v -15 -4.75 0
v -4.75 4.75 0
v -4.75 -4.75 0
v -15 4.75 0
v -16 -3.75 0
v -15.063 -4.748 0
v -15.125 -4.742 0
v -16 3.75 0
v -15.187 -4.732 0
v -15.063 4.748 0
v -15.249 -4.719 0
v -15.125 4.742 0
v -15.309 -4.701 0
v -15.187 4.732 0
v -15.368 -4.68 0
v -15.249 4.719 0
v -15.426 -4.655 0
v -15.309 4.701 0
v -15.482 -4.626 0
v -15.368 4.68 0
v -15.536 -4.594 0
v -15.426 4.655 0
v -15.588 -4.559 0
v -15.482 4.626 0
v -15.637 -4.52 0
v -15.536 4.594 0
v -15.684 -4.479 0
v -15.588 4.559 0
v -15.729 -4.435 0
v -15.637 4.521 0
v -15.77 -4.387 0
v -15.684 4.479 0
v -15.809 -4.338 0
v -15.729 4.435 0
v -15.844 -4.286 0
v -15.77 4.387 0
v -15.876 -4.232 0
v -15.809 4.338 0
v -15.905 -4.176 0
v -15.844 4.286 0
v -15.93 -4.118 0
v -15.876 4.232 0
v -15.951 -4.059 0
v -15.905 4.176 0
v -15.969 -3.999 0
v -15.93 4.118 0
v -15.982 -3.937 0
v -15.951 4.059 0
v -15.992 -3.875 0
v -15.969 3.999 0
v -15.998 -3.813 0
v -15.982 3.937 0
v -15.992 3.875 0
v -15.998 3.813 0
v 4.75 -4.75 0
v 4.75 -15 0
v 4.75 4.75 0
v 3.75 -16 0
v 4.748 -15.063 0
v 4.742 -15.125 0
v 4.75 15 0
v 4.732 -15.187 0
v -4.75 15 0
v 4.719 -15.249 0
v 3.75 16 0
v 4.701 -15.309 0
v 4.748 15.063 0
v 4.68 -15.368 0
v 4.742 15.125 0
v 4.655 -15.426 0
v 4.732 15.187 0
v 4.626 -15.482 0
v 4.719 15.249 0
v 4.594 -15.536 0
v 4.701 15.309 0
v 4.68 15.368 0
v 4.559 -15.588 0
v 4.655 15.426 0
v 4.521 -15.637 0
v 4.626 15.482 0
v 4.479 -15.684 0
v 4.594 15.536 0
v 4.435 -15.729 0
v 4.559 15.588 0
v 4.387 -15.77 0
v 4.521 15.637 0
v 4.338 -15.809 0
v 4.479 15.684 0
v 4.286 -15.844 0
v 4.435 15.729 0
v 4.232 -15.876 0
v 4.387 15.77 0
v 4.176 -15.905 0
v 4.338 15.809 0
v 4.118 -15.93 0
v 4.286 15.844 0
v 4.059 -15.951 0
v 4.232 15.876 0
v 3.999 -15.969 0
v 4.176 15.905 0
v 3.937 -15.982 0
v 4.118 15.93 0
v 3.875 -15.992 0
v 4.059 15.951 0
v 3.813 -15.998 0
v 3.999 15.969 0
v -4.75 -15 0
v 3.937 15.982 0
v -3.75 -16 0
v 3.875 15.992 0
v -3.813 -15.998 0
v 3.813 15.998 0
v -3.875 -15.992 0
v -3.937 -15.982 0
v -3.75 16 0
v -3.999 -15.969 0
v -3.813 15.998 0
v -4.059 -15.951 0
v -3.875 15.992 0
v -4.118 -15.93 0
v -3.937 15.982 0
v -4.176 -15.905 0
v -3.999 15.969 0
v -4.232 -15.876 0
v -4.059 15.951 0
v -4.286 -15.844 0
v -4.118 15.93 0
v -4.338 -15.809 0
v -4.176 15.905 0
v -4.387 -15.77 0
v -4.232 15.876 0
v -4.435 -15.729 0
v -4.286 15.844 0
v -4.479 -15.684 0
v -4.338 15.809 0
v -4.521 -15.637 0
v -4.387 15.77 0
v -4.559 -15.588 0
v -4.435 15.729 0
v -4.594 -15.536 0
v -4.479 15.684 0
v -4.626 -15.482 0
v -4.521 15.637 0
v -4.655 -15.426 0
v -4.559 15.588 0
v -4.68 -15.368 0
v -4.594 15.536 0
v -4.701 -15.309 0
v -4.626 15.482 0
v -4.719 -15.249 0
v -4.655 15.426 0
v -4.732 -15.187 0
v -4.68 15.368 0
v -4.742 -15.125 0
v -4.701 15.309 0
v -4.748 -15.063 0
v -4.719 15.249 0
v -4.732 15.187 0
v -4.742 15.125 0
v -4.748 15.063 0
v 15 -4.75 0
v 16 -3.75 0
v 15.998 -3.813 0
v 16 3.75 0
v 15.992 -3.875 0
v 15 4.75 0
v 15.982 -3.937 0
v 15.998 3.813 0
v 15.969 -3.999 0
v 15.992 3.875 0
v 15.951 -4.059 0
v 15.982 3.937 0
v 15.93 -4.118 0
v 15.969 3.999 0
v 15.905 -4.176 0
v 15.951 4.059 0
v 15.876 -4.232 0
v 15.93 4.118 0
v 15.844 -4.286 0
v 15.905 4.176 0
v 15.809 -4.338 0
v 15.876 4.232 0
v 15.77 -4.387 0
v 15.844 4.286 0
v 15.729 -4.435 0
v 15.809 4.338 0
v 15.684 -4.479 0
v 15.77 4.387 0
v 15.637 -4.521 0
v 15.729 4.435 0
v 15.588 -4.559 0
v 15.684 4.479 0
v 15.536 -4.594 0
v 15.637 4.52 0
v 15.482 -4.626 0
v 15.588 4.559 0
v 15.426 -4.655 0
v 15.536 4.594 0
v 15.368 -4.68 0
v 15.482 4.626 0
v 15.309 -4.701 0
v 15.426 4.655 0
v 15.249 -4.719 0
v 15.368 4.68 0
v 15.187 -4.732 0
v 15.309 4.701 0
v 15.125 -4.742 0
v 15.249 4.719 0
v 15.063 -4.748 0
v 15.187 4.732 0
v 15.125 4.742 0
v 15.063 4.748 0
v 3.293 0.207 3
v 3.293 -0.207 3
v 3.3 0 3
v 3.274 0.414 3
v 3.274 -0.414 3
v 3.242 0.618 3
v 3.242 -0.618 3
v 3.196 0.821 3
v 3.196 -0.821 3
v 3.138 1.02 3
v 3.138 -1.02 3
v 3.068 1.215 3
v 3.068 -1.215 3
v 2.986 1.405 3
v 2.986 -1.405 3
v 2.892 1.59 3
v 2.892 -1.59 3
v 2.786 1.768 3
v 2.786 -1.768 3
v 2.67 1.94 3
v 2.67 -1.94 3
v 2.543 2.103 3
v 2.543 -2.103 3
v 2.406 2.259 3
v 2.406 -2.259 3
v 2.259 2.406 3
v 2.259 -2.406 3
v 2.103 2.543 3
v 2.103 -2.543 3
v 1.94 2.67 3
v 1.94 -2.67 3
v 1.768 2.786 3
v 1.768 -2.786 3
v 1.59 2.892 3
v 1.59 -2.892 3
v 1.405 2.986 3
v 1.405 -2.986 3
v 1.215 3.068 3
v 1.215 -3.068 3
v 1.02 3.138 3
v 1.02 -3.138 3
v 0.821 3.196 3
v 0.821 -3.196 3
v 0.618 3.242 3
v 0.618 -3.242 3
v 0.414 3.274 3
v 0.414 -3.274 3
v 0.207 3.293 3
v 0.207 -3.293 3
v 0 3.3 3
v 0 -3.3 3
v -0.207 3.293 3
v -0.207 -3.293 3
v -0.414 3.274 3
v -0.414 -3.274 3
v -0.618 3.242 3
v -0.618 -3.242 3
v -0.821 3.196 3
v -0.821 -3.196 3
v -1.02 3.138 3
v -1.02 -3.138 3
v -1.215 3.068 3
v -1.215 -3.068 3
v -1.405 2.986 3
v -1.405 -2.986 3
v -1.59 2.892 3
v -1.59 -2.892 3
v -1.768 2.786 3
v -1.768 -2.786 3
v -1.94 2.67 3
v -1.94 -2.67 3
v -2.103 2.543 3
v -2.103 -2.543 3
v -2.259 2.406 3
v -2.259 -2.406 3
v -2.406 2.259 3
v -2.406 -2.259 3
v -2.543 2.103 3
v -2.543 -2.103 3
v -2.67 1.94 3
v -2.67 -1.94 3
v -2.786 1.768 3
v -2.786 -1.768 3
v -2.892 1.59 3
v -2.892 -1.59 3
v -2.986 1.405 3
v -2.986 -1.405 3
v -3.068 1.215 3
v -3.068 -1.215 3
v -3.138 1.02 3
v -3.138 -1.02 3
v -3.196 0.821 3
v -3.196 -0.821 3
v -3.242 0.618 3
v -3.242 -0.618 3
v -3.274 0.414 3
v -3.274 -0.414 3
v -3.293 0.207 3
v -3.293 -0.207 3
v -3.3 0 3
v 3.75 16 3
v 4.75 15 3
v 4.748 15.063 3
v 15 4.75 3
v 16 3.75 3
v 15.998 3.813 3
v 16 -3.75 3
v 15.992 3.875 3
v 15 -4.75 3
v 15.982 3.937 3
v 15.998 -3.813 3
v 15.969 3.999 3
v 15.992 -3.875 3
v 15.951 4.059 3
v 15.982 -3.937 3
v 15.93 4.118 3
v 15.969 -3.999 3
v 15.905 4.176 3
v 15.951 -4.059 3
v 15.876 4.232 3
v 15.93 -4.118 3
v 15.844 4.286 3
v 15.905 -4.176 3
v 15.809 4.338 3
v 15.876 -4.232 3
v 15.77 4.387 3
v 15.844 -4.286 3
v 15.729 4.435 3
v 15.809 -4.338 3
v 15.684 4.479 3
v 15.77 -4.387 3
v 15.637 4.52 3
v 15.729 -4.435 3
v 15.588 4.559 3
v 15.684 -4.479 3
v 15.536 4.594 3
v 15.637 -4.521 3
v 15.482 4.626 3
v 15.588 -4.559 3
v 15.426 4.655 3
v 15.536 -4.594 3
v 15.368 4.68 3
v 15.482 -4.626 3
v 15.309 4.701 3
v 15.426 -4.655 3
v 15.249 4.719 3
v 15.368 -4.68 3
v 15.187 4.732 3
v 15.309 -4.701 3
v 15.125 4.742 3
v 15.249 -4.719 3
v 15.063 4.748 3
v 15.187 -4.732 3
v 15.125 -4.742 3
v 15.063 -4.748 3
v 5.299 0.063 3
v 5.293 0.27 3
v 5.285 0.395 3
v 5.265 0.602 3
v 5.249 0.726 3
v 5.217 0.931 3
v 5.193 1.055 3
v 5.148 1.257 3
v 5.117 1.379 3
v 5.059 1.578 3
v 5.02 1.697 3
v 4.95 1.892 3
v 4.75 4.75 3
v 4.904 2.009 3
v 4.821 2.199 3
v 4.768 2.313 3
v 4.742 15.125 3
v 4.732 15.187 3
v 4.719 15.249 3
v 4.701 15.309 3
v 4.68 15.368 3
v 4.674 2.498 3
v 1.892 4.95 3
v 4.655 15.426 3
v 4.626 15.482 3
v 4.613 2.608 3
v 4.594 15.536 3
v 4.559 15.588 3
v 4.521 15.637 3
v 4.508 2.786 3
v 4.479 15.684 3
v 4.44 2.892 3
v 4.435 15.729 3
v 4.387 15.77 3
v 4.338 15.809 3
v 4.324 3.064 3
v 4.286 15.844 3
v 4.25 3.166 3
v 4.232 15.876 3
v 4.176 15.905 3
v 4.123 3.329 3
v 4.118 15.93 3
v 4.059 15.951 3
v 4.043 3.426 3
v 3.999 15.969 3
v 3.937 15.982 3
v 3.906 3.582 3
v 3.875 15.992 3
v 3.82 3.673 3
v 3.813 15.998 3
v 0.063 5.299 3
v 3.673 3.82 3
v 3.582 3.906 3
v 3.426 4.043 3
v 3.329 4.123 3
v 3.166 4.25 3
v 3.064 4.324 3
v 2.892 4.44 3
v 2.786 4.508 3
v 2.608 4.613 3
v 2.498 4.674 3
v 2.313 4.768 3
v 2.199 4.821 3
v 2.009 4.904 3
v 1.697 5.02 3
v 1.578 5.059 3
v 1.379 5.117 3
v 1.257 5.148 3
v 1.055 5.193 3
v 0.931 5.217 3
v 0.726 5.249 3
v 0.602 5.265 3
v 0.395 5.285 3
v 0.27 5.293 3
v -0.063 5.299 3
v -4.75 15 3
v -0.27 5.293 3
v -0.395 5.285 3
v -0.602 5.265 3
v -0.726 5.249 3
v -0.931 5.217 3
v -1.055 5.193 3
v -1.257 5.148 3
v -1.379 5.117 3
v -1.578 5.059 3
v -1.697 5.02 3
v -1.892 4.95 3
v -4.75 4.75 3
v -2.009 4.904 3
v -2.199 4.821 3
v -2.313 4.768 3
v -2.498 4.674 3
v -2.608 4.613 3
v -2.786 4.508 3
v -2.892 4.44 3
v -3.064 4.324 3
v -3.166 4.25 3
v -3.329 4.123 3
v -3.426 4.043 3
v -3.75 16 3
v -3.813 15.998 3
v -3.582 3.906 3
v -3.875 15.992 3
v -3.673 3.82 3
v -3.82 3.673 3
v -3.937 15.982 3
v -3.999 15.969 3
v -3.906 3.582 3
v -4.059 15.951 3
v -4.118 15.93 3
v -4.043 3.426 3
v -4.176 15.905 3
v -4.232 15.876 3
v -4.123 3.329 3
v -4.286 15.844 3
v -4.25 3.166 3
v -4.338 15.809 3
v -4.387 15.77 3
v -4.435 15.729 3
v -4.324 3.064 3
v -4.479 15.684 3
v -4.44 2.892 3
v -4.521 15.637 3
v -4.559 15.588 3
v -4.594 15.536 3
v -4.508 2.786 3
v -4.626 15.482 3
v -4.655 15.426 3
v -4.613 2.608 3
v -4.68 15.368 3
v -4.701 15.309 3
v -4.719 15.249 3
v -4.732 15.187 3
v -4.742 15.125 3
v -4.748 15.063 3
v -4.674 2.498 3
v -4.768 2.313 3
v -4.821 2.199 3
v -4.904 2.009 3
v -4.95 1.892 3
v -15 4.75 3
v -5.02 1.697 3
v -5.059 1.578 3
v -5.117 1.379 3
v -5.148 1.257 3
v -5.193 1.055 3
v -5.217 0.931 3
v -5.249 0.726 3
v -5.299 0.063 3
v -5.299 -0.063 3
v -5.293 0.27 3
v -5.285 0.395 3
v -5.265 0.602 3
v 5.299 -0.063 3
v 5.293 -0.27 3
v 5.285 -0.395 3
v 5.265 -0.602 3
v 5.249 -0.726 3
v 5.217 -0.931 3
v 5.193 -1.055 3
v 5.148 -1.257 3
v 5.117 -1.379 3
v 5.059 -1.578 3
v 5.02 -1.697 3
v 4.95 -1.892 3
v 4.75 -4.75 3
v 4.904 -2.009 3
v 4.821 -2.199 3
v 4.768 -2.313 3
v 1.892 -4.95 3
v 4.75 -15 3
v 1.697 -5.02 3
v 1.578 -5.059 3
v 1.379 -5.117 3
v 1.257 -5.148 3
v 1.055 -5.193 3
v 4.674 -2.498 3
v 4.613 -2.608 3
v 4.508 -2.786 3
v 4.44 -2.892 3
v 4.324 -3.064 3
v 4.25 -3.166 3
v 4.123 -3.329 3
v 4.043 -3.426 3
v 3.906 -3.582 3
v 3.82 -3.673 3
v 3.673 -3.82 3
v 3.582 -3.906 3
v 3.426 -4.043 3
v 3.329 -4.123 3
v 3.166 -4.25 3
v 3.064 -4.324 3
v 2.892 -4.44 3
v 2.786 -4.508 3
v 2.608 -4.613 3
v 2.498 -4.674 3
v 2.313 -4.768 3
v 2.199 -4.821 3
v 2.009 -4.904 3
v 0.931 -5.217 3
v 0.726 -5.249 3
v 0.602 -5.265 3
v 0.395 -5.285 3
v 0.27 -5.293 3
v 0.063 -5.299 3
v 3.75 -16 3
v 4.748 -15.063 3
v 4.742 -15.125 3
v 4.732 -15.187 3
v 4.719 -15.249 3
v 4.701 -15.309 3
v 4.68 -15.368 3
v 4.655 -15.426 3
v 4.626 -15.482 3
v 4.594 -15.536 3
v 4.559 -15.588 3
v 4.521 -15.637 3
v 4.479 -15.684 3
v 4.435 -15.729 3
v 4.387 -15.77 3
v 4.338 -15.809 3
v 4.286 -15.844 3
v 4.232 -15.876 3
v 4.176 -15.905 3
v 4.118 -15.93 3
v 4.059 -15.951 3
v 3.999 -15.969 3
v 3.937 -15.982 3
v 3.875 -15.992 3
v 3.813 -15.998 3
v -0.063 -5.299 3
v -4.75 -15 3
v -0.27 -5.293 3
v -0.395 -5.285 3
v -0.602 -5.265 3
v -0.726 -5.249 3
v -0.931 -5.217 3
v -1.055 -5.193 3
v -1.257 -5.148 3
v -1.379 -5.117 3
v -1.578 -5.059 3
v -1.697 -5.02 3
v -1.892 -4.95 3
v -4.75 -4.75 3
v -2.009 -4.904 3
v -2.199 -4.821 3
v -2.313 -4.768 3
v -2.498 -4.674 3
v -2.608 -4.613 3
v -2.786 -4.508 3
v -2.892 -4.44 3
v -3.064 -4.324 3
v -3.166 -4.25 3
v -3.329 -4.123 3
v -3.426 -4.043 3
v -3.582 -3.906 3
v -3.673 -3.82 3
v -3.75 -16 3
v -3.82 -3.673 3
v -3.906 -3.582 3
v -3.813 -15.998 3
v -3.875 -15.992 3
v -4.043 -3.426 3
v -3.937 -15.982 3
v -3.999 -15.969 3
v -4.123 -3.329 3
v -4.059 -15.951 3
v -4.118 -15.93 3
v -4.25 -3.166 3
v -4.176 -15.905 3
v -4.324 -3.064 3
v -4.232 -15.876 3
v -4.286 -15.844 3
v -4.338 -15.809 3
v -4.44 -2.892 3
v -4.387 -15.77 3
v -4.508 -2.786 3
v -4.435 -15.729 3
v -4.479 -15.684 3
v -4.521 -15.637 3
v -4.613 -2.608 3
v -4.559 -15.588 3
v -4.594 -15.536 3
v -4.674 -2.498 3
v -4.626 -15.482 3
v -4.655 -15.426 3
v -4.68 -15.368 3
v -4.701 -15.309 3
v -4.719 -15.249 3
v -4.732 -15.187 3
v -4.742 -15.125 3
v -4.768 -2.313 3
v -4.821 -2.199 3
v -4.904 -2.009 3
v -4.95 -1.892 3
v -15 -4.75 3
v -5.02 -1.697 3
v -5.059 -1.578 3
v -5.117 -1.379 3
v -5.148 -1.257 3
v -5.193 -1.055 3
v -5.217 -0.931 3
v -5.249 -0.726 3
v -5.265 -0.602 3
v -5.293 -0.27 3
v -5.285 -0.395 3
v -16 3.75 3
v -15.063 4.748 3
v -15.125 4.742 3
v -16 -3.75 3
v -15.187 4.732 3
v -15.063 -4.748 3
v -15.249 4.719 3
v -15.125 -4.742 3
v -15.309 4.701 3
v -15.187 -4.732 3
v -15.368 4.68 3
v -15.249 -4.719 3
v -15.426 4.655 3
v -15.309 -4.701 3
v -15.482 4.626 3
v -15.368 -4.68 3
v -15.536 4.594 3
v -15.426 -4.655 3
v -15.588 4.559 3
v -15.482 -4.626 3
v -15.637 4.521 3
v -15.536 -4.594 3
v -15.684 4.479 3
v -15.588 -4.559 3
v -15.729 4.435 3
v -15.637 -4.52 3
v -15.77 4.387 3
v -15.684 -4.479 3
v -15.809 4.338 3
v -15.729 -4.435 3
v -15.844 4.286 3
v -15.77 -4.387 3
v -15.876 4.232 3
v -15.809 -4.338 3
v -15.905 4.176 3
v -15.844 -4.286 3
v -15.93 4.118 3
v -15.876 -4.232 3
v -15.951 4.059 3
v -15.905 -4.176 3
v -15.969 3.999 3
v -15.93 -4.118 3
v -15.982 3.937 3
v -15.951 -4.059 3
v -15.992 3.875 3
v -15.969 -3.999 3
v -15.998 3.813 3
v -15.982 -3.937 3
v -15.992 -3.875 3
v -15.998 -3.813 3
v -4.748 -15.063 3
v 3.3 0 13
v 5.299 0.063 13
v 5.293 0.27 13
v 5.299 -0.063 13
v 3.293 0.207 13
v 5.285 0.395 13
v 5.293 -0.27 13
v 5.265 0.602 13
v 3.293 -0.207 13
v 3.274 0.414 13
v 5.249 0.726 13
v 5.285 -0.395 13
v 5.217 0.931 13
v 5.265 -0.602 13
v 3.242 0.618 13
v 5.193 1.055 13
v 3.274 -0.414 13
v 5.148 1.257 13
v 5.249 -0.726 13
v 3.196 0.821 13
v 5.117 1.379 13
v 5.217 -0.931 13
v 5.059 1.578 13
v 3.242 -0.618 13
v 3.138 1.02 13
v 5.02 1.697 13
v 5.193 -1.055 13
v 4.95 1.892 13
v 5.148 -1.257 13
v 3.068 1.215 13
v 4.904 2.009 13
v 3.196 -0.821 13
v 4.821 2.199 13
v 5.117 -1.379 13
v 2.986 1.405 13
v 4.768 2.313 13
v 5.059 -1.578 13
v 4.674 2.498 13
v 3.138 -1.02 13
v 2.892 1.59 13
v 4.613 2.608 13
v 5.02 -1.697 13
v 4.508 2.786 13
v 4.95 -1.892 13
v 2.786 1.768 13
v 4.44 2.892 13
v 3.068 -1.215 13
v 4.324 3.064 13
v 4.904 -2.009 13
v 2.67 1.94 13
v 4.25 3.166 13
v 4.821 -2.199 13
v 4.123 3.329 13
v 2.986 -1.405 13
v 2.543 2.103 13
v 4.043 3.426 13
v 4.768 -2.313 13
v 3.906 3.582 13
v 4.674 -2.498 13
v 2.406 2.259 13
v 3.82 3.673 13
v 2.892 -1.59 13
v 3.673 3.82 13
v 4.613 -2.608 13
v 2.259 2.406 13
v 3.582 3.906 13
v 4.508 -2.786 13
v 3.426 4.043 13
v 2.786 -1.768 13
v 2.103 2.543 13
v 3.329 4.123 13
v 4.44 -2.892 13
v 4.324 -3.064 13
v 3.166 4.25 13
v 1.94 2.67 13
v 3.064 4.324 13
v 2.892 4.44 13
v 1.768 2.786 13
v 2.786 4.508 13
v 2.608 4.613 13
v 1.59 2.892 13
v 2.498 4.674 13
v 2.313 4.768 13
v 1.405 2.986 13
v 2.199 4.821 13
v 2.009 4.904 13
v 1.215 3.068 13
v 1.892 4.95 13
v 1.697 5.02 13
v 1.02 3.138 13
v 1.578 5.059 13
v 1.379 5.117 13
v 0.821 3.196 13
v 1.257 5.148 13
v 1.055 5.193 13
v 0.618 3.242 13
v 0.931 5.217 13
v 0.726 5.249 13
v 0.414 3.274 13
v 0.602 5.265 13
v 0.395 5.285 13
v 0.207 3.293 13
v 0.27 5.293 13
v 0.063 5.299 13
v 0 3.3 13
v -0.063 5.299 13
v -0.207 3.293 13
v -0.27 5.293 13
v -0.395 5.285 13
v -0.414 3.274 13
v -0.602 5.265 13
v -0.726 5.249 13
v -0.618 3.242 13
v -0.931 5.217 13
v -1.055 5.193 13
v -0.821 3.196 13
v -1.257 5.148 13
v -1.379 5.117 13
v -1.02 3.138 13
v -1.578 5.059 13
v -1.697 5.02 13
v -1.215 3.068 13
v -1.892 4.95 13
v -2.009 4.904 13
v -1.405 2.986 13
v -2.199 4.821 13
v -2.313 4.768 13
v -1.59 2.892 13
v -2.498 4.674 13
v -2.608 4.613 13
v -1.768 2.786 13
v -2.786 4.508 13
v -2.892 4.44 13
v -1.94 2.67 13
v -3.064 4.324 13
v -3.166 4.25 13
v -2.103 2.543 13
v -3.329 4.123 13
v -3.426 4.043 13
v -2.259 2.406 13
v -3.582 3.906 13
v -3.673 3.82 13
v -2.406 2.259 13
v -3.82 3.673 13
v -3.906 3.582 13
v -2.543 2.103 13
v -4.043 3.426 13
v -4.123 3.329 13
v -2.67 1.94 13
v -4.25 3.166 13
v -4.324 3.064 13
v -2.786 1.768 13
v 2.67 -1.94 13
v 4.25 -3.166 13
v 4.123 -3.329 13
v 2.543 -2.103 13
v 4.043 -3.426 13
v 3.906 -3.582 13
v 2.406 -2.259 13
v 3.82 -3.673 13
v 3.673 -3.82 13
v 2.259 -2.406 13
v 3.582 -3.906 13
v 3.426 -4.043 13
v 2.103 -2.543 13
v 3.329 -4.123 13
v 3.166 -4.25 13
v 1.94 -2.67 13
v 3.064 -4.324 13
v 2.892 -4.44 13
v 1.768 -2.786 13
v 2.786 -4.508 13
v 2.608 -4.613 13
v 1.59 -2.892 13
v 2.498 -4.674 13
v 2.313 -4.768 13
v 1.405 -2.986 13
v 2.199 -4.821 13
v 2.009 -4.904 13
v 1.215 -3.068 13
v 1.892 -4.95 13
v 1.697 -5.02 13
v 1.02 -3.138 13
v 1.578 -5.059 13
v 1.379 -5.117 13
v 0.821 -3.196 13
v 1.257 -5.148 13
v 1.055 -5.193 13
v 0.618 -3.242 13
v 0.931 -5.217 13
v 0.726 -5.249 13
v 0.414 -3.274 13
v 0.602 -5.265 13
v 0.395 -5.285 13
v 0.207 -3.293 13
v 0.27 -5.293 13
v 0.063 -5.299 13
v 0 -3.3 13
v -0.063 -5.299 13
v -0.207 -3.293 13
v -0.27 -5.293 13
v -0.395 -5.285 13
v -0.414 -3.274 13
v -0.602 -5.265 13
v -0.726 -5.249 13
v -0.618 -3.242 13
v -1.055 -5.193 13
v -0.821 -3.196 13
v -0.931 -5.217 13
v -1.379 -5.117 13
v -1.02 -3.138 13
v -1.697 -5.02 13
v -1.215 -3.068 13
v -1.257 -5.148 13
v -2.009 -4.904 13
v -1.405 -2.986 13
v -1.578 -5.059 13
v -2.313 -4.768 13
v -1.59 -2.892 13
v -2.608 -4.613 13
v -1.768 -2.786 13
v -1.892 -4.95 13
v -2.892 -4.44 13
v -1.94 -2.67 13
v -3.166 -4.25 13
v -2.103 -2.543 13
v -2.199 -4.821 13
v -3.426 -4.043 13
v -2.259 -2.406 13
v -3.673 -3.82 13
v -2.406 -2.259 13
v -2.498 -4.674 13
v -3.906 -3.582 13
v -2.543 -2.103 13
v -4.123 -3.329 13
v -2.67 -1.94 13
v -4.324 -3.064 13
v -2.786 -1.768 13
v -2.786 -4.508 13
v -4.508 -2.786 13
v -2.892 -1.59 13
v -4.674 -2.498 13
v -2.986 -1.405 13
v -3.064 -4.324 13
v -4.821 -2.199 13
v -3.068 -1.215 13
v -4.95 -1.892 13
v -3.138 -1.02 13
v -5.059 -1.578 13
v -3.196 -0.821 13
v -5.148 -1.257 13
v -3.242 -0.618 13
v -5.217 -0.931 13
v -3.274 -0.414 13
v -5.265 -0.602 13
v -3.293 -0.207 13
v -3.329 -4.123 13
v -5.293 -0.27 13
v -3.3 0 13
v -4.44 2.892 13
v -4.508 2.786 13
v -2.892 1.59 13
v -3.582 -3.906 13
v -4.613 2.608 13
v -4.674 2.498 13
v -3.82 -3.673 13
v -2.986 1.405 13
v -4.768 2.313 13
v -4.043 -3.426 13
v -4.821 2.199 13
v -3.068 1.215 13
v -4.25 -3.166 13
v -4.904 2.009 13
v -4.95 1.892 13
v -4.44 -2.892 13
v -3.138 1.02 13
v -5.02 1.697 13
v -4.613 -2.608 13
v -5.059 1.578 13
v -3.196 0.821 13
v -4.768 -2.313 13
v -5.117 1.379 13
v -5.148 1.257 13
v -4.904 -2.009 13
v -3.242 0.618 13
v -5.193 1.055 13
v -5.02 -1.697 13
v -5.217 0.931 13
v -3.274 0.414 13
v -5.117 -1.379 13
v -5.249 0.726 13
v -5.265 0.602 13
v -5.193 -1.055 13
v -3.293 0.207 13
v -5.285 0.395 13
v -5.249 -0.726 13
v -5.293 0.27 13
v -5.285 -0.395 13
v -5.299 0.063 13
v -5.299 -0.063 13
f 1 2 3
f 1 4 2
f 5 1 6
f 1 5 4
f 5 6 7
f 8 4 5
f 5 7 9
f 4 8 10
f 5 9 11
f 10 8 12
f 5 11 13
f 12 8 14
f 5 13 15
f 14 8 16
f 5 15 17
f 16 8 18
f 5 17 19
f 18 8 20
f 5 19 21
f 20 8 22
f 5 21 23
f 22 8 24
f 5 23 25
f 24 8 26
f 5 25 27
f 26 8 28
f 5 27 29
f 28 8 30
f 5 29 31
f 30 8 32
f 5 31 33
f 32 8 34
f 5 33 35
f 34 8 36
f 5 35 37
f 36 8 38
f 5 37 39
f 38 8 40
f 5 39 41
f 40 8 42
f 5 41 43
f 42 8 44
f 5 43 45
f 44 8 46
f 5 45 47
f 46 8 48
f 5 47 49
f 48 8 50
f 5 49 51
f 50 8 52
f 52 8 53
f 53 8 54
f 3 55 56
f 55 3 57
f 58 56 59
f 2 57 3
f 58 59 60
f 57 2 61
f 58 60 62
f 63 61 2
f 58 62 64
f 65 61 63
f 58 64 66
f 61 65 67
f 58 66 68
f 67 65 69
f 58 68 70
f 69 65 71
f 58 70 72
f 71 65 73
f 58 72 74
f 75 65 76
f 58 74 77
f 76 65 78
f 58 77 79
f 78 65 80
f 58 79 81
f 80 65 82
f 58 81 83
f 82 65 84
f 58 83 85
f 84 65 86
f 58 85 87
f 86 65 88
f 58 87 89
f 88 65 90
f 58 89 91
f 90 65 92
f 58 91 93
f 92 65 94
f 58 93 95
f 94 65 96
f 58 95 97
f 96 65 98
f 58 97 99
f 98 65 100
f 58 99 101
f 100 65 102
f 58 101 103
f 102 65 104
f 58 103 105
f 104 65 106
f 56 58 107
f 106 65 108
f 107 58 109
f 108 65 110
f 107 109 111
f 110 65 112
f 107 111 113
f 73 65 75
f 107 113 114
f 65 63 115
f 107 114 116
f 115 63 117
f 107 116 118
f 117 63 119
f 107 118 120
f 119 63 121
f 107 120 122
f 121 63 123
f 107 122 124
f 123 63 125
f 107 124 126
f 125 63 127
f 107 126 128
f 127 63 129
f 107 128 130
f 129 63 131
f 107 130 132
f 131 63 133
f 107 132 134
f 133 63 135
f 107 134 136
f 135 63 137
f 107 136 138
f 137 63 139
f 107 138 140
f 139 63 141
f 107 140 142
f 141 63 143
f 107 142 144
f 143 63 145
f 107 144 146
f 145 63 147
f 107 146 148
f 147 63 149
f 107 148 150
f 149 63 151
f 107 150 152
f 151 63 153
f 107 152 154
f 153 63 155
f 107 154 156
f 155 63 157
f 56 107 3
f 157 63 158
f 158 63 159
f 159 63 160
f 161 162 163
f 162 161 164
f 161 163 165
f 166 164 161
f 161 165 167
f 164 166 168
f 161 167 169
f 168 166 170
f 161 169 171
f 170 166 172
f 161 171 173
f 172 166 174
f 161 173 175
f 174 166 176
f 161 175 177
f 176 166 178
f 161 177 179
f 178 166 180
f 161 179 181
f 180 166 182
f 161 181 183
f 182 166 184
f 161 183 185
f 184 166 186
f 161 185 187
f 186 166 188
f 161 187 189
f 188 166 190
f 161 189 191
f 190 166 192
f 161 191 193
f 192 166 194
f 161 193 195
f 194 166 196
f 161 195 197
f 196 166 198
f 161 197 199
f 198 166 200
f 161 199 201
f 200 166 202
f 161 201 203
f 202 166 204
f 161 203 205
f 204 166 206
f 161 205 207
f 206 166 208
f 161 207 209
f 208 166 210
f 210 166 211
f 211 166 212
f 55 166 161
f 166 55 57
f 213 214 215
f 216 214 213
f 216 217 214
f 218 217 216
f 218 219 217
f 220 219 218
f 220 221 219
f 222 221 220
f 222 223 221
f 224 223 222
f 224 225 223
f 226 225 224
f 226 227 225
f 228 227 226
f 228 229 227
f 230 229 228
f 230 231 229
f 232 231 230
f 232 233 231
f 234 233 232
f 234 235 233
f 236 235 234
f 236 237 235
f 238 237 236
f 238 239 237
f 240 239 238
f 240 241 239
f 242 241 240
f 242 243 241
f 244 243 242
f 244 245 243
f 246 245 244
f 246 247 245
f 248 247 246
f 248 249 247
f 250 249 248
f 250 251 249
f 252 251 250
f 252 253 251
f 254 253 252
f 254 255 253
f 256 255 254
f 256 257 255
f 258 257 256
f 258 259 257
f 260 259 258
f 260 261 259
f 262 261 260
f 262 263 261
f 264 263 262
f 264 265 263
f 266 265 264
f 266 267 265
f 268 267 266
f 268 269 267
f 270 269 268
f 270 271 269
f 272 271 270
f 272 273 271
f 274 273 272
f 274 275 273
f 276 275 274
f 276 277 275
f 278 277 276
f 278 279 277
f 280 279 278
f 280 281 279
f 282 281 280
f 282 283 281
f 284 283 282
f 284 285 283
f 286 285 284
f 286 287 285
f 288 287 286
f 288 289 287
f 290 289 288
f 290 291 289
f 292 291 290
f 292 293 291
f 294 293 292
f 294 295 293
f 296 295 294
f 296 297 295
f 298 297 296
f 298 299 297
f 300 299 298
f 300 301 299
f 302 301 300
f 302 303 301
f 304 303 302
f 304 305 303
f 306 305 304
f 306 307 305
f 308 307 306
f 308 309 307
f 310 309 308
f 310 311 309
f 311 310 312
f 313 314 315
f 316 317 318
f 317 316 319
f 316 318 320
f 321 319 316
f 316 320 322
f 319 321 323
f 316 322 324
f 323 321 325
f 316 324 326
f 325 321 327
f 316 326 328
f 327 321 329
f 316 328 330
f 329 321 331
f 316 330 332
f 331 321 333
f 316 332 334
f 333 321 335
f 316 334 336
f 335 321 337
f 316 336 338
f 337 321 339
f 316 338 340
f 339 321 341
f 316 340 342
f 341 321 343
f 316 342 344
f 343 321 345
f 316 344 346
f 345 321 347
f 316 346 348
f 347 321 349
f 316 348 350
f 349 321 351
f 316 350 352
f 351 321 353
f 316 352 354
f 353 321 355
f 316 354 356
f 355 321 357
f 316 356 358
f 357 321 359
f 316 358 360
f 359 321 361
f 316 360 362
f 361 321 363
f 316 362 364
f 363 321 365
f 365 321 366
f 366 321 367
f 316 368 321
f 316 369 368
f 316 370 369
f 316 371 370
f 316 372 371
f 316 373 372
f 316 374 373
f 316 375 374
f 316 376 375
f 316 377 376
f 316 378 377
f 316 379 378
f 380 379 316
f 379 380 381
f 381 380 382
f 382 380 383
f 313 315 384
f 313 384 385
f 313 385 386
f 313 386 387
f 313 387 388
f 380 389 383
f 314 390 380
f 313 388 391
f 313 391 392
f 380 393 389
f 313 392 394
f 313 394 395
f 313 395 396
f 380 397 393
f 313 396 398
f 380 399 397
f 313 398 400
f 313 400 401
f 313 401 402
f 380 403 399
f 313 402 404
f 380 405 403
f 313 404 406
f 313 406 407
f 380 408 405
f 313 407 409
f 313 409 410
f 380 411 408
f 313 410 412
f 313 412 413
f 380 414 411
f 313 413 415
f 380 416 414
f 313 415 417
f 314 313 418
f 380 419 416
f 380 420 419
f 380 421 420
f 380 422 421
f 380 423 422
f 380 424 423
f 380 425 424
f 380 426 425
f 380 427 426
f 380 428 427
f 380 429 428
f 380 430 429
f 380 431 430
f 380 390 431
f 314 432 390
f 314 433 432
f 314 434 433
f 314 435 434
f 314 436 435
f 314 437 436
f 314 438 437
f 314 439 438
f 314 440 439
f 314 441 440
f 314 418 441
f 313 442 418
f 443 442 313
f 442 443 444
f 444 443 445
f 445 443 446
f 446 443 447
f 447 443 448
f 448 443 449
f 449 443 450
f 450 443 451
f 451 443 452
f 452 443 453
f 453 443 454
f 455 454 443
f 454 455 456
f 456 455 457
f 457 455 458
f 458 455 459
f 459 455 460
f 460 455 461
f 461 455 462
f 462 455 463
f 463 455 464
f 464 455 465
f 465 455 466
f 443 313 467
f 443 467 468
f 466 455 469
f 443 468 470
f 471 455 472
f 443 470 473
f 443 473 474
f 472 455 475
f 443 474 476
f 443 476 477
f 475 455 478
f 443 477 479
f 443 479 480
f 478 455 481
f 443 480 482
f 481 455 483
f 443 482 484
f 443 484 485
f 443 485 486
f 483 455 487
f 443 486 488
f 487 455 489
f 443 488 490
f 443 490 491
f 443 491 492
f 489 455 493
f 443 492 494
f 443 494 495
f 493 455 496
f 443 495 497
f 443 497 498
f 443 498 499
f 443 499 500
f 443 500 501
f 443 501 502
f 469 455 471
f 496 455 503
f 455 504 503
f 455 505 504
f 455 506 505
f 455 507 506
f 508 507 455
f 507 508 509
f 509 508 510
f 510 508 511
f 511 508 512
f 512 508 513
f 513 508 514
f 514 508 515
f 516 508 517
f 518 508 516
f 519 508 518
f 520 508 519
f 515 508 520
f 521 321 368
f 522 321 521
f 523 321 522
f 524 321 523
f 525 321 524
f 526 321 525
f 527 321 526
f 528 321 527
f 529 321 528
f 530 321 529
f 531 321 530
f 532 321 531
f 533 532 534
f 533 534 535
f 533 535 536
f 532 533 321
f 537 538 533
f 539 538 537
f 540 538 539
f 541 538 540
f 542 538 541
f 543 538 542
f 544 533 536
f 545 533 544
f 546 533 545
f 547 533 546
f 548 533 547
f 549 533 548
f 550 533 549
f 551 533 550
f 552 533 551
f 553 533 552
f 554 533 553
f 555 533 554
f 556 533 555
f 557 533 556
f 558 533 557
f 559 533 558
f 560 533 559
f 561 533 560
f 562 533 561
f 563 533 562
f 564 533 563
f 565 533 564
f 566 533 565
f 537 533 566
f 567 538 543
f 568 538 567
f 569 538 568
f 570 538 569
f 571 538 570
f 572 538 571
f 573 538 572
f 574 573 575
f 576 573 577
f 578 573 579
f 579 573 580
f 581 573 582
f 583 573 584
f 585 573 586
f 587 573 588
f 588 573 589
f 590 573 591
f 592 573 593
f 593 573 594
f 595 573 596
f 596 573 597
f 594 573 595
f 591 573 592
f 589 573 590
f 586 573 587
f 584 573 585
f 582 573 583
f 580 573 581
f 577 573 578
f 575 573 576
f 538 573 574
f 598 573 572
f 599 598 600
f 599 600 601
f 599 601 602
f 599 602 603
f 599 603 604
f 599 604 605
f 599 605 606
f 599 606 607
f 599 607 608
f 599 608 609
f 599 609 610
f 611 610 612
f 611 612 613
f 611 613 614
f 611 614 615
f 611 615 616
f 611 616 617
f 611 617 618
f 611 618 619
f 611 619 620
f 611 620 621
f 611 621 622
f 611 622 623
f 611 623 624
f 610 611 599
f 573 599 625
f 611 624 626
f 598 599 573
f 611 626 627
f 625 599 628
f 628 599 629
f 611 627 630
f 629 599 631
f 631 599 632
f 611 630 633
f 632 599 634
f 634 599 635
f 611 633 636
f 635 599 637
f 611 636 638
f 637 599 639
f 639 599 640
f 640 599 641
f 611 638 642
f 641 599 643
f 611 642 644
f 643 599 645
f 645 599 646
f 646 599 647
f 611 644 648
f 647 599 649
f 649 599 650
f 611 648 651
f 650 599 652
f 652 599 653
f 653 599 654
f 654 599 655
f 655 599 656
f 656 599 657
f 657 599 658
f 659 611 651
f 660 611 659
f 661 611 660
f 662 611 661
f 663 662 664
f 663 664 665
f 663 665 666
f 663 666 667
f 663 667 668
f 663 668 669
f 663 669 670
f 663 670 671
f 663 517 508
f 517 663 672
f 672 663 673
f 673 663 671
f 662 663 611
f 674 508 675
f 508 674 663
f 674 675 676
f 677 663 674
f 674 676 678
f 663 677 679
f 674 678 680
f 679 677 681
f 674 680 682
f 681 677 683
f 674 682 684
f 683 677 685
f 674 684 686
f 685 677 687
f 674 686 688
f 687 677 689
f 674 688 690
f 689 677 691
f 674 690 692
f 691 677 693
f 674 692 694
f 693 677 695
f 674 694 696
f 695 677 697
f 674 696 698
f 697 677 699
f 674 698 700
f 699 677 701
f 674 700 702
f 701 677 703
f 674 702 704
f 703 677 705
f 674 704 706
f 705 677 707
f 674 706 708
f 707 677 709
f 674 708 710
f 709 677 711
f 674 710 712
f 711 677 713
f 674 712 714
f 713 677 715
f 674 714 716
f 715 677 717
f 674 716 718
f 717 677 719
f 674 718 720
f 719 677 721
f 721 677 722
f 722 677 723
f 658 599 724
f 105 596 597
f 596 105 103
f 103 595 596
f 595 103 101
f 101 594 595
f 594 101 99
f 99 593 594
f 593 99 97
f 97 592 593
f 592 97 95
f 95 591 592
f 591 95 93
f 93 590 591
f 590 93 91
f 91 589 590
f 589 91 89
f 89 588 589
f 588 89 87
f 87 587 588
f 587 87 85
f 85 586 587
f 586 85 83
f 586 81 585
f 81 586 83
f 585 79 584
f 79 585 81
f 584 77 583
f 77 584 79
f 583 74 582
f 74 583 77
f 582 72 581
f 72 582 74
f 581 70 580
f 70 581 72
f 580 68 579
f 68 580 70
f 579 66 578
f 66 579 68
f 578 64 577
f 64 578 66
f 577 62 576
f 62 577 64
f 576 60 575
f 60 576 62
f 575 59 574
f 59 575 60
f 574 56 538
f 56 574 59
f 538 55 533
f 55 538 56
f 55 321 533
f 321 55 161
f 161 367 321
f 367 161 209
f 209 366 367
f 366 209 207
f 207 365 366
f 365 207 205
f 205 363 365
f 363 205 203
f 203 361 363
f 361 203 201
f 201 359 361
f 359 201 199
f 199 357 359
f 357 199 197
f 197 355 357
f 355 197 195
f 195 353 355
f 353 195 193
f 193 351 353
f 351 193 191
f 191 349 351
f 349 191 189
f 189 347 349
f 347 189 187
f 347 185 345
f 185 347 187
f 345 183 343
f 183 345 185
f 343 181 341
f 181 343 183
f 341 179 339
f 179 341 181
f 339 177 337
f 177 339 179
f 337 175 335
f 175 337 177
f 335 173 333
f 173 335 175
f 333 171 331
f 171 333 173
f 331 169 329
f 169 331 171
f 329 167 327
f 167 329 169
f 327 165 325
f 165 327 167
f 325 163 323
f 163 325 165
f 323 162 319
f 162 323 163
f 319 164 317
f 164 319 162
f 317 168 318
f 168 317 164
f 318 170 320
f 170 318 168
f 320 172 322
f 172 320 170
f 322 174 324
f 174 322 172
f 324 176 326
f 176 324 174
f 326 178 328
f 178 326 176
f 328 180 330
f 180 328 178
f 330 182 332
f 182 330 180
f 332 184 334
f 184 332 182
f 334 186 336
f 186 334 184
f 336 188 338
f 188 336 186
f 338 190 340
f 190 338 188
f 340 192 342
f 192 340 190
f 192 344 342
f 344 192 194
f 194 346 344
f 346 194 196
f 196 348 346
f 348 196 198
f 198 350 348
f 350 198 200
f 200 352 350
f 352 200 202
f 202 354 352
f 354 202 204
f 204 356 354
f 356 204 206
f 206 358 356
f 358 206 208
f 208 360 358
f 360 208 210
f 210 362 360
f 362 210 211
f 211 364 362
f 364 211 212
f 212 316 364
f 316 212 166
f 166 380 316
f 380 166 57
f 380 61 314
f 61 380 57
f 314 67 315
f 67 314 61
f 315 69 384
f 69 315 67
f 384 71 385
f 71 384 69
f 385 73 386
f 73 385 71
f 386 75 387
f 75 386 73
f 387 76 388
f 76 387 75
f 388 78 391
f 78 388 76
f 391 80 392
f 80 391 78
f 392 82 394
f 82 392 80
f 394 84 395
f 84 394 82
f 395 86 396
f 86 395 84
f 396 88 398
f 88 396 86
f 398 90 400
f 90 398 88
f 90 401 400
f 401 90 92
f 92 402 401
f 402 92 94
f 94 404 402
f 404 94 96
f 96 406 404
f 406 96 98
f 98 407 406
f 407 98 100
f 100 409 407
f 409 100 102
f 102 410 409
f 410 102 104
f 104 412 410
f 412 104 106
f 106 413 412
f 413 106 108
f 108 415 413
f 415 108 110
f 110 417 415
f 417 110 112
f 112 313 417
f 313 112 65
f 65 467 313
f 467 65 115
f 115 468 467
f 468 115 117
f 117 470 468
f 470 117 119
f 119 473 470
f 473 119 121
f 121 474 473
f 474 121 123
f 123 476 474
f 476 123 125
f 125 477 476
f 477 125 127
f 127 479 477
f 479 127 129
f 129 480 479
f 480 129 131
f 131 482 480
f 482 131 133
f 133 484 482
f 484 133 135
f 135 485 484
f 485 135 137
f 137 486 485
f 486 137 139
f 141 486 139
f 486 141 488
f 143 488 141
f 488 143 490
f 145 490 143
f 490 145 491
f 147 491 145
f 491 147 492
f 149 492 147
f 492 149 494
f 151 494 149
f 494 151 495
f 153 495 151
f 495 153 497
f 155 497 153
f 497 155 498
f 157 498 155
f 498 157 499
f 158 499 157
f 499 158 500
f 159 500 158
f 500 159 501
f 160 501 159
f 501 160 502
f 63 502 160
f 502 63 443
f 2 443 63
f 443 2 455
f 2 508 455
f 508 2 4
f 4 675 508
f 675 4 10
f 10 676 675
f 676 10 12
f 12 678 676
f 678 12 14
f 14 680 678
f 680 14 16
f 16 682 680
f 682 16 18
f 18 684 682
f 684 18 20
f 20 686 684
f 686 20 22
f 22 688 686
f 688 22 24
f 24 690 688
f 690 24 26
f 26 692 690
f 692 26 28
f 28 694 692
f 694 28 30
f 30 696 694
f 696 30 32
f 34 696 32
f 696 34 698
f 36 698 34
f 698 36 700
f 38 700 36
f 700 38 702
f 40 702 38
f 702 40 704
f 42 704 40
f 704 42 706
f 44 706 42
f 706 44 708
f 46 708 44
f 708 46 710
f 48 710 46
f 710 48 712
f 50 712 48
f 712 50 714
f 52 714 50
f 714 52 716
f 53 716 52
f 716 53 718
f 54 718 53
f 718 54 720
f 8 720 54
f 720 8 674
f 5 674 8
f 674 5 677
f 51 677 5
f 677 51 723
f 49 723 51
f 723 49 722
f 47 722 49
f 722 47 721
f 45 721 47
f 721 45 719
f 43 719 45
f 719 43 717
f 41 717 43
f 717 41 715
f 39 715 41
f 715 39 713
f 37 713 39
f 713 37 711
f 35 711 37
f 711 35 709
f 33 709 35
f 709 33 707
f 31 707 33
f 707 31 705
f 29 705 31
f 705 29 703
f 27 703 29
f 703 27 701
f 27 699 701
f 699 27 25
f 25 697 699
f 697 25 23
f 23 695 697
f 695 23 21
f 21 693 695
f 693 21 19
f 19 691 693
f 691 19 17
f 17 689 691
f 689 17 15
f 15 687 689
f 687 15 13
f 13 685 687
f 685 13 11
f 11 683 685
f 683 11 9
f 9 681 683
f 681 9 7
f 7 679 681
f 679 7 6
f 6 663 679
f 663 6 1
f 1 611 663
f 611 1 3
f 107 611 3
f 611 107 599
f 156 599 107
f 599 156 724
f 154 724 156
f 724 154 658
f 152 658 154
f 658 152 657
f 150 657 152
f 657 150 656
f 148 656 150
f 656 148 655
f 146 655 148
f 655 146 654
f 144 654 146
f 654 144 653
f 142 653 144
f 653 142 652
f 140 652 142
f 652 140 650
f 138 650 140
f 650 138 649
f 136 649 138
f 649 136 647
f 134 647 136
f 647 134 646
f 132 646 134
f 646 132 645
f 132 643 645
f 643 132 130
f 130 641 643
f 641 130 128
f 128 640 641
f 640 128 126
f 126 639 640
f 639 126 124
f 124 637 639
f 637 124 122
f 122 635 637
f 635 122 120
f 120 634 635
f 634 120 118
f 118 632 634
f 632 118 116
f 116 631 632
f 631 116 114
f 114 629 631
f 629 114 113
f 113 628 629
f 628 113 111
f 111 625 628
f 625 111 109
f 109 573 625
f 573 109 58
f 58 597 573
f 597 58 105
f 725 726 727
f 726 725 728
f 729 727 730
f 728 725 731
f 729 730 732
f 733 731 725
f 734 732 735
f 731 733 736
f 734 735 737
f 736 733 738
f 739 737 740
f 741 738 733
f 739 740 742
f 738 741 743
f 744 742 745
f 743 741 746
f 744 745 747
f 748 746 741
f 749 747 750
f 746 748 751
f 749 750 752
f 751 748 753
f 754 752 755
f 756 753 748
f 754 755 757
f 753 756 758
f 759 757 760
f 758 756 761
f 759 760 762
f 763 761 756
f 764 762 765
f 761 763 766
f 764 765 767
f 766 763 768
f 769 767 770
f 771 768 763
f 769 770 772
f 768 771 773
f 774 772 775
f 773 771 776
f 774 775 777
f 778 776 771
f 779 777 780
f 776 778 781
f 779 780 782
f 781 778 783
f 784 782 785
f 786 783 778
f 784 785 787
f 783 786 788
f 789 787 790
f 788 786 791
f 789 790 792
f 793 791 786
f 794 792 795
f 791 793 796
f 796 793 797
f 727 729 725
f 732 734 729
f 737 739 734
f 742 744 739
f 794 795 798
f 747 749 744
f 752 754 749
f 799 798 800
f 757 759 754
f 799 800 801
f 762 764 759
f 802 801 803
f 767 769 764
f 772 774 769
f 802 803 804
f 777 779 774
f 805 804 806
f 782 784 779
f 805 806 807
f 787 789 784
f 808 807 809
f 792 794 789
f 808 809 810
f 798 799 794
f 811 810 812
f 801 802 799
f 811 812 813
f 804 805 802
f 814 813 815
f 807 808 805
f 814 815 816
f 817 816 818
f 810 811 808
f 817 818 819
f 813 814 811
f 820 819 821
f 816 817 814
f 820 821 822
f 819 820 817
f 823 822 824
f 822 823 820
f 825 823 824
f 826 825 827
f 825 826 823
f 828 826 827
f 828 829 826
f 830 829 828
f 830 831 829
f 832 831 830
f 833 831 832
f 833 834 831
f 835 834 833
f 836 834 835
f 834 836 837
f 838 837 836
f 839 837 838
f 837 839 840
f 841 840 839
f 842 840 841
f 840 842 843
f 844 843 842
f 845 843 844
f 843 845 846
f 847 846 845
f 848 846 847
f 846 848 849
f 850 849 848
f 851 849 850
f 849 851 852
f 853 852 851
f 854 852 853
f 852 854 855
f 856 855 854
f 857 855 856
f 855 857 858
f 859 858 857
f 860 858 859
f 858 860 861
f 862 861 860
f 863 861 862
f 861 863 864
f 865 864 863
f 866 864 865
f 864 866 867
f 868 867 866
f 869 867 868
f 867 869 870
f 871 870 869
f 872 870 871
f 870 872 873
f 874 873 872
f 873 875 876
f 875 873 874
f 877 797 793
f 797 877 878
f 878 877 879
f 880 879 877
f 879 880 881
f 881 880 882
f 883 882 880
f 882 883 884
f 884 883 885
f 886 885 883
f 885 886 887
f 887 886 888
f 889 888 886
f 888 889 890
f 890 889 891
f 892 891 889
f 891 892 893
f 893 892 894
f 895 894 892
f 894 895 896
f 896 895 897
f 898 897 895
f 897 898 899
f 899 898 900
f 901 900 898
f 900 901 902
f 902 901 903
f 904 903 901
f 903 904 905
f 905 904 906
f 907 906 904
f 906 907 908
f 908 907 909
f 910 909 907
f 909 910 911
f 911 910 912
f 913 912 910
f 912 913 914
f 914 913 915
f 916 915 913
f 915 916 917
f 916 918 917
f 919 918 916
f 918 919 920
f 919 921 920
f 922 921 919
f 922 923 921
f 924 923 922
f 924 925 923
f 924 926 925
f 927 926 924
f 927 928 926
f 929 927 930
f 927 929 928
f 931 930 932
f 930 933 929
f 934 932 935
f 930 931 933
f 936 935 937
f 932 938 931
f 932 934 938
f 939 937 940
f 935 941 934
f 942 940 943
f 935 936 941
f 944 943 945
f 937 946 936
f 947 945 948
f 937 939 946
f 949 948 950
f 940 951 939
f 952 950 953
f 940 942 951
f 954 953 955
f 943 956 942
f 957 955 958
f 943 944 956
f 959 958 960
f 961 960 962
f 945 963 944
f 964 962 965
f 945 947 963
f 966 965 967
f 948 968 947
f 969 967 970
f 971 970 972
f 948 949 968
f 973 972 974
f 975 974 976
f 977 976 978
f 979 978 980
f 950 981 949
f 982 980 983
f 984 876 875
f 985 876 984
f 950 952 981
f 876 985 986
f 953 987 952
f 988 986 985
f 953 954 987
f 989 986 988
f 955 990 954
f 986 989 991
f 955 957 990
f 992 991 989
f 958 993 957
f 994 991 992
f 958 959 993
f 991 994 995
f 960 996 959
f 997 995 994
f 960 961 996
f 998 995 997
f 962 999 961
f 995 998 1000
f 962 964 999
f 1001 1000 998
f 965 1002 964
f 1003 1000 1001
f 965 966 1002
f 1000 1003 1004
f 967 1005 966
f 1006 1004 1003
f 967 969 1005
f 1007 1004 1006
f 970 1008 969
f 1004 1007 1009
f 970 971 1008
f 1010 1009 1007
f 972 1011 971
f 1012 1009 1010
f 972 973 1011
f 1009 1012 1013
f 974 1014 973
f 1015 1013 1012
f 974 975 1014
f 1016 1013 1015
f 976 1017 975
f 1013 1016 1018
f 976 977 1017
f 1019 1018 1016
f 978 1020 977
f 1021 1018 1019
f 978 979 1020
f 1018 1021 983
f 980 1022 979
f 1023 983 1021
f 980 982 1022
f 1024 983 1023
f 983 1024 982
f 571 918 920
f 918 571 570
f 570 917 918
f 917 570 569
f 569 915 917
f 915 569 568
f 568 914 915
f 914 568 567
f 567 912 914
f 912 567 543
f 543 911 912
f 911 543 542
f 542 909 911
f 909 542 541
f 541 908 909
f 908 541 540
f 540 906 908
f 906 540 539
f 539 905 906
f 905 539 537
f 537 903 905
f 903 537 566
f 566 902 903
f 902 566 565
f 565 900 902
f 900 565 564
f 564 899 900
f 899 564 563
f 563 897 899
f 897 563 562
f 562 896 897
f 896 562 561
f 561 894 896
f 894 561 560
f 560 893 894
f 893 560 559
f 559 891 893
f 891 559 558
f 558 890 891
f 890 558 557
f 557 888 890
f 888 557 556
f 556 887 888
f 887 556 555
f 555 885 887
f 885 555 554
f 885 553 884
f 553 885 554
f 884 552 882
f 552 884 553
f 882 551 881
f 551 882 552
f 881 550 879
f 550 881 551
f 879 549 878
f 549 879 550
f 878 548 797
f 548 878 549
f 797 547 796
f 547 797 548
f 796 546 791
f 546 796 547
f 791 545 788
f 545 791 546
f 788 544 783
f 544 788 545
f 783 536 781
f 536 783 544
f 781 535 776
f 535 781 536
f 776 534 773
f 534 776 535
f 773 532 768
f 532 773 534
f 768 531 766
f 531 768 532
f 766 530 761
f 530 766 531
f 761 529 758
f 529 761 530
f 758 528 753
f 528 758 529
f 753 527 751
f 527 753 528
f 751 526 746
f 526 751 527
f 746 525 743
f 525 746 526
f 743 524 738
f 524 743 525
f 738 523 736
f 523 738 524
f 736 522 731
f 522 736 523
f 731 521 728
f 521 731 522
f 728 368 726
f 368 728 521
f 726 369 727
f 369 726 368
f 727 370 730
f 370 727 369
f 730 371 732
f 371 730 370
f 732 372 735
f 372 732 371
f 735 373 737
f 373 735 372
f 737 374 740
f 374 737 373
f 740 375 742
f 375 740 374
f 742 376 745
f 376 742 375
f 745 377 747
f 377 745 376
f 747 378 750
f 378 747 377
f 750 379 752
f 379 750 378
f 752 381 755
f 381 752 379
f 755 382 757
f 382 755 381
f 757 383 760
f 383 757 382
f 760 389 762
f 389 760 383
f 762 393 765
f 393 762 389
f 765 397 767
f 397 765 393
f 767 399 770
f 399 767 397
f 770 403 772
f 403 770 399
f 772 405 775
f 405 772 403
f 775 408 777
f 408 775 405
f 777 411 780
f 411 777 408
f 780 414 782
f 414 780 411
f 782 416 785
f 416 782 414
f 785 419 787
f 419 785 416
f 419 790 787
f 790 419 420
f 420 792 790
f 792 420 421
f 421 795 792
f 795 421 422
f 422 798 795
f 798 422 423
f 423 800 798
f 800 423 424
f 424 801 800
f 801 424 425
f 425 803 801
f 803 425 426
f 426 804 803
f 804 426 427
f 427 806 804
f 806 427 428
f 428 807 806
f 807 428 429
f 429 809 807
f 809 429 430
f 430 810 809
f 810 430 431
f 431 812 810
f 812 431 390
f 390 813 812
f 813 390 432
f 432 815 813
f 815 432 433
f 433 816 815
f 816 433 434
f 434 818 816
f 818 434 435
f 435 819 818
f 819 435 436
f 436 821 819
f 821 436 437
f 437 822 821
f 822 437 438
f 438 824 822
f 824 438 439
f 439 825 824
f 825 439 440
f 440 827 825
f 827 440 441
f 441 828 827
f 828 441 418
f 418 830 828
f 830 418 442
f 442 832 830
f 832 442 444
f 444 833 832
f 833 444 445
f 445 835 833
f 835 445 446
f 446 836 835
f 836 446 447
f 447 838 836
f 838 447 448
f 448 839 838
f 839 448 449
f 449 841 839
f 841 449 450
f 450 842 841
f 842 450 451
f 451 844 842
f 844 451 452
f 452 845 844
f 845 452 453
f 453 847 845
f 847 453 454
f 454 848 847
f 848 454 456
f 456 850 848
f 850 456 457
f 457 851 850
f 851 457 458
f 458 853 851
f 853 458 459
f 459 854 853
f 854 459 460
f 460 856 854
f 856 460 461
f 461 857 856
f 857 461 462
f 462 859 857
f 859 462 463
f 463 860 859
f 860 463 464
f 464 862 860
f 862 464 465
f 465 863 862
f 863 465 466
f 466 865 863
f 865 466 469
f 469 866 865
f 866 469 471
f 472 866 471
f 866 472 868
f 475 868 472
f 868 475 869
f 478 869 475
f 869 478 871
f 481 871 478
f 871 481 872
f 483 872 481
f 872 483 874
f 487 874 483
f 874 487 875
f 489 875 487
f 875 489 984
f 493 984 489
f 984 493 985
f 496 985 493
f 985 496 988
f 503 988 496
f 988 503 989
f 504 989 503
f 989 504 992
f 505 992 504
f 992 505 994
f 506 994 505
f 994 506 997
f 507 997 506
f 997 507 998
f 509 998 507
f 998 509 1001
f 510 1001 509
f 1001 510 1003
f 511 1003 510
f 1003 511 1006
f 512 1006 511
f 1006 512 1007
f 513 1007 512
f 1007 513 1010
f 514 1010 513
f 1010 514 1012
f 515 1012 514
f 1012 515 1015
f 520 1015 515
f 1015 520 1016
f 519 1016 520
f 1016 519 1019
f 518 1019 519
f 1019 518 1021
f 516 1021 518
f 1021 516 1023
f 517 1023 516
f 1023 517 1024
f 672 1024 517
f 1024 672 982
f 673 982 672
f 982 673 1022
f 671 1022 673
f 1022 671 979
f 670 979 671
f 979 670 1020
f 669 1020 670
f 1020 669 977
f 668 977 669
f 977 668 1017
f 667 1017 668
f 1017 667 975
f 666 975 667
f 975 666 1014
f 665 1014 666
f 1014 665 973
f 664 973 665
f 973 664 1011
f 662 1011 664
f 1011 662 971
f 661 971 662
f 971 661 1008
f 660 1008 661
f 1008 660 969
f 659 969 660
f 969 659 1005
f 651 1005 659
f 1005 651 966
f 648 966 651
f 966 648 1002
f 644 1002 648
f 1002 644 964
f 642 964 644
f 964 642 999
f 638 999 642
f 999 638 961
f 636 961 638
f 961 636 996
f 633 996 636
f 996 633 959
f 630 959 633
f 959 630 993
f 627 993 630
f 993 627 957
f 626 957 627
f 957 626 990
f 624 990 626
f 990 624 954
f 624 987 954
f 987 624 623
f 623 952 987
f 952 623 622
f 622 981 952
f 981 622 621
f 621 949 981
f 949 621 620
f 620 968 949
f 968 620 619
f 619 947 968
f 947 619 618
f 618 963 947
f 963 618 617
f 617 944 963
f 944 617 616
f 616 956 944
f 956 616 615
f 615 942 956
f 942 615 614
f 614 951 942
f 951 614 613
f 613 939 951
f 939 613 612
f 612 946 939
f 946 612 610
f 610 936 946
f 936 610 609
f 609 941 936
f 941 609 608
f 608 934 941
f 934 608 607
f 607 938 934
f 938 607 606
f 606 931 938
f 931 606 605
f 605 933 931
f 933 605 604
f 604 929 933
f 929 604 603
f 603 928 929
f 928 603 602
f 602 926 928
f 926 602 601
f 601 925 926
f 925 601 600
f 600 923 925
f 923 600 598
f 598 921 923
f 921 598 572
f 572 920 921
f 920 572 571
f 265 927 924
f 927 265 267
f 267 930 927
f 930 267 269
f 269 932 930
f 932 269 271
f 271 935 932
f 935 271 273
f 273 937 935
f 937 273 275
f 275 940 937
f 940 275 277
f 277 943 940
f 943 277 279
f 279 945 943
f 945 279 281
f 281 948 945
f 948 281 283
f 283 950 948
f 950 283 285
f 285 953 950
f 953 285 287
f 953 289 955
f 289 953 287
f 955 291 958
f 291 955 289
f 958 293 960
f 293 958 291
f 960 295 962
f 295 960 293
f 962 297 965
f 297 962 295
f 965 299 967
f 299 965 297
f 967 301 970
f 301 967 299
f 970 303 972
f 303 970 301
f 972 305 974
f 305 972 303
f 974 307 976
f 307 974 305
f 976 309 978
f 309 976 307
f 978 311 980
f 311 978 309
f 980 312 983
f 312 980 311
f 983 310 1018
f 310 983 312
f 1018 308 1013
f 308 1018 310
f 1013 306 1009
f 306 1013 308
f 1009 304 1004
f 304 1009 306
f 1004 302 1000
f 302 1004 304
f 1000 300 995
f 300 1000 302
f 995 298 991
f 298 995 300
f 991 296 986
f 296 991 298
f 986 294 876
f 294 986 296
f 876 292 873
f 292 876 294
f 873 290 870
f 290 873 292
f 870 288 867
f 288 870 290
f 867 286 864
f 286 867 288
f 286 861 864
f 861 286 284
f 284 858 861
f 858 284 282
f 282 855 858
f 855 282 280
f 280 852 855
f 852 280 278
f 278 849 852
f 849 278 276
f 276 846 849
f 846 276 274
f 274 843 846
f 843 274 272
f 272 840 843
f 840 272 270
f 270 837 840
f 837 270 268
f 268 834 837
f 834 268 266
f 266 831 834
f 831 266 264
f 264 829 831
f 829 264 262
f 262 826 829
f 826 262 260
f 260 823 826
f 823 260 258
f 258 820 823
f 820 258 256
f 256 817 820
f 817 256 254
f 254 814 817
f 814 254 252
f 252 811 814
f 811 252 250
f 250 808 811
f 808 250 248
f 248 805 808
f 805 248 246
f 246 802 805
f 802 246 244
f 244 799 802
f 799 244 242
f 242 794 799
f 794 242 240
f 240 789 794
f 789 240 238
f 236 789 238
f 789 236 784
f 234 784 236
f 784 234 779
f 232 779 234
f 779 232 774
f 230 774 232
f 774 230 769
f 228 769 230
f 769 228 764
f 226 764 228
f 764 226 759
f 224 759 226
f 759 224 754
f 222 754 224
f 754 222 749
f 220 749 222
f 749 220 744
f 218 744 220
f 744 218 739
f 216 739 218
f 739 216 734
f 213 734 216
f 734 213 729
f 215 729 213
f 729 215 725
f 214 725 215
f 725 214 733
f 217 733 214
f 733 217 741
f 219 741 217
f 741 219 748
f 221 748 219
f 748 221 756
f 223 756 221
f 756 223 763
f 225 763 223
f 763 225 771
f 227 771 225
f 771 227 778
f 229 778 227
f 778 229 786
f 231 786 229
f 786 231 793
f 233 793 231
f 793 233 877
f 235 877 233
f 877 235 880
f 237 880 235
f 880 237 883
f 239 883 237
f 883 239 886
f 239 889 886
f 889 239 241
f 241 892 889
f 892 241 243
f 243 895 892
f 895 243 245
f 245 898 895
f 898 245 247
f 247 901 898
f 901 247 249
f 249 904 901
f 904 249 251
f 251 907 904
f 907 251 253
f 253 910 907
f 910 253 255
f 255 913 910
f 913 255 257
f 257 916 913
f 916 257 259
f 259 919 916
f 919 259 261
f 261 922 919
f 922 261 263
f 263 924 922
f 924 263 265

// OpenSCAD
// Based on OpenSCAD example offset.scad
$fn = 100;

plate_thickness = 3;

module outline(wall = 2) {
  difference() {
    offset(wall) children();
    offset(0) children();
  }
}

linear_extrude(height = plate_thickness) {
    offset(1) { // offsetting with a positive value allows to create rounded corners easily
        square([7.5, 30], center = true);
        rotate([0,0,90]) square([7.5, 30], center = true);
    }
}

module hole_and_pin(pin_height=10) { // Hole and pin
    translate([0, 0, plate_thickness]) {
        linear_extrude(height=pin_height) {
            outline() circle(d=6.6);
            }
        }
    translate([0, 0, plate_thickness]) %cylinder(d = 6.25,h=pin_height+1);
    }

hole_and_pin();
